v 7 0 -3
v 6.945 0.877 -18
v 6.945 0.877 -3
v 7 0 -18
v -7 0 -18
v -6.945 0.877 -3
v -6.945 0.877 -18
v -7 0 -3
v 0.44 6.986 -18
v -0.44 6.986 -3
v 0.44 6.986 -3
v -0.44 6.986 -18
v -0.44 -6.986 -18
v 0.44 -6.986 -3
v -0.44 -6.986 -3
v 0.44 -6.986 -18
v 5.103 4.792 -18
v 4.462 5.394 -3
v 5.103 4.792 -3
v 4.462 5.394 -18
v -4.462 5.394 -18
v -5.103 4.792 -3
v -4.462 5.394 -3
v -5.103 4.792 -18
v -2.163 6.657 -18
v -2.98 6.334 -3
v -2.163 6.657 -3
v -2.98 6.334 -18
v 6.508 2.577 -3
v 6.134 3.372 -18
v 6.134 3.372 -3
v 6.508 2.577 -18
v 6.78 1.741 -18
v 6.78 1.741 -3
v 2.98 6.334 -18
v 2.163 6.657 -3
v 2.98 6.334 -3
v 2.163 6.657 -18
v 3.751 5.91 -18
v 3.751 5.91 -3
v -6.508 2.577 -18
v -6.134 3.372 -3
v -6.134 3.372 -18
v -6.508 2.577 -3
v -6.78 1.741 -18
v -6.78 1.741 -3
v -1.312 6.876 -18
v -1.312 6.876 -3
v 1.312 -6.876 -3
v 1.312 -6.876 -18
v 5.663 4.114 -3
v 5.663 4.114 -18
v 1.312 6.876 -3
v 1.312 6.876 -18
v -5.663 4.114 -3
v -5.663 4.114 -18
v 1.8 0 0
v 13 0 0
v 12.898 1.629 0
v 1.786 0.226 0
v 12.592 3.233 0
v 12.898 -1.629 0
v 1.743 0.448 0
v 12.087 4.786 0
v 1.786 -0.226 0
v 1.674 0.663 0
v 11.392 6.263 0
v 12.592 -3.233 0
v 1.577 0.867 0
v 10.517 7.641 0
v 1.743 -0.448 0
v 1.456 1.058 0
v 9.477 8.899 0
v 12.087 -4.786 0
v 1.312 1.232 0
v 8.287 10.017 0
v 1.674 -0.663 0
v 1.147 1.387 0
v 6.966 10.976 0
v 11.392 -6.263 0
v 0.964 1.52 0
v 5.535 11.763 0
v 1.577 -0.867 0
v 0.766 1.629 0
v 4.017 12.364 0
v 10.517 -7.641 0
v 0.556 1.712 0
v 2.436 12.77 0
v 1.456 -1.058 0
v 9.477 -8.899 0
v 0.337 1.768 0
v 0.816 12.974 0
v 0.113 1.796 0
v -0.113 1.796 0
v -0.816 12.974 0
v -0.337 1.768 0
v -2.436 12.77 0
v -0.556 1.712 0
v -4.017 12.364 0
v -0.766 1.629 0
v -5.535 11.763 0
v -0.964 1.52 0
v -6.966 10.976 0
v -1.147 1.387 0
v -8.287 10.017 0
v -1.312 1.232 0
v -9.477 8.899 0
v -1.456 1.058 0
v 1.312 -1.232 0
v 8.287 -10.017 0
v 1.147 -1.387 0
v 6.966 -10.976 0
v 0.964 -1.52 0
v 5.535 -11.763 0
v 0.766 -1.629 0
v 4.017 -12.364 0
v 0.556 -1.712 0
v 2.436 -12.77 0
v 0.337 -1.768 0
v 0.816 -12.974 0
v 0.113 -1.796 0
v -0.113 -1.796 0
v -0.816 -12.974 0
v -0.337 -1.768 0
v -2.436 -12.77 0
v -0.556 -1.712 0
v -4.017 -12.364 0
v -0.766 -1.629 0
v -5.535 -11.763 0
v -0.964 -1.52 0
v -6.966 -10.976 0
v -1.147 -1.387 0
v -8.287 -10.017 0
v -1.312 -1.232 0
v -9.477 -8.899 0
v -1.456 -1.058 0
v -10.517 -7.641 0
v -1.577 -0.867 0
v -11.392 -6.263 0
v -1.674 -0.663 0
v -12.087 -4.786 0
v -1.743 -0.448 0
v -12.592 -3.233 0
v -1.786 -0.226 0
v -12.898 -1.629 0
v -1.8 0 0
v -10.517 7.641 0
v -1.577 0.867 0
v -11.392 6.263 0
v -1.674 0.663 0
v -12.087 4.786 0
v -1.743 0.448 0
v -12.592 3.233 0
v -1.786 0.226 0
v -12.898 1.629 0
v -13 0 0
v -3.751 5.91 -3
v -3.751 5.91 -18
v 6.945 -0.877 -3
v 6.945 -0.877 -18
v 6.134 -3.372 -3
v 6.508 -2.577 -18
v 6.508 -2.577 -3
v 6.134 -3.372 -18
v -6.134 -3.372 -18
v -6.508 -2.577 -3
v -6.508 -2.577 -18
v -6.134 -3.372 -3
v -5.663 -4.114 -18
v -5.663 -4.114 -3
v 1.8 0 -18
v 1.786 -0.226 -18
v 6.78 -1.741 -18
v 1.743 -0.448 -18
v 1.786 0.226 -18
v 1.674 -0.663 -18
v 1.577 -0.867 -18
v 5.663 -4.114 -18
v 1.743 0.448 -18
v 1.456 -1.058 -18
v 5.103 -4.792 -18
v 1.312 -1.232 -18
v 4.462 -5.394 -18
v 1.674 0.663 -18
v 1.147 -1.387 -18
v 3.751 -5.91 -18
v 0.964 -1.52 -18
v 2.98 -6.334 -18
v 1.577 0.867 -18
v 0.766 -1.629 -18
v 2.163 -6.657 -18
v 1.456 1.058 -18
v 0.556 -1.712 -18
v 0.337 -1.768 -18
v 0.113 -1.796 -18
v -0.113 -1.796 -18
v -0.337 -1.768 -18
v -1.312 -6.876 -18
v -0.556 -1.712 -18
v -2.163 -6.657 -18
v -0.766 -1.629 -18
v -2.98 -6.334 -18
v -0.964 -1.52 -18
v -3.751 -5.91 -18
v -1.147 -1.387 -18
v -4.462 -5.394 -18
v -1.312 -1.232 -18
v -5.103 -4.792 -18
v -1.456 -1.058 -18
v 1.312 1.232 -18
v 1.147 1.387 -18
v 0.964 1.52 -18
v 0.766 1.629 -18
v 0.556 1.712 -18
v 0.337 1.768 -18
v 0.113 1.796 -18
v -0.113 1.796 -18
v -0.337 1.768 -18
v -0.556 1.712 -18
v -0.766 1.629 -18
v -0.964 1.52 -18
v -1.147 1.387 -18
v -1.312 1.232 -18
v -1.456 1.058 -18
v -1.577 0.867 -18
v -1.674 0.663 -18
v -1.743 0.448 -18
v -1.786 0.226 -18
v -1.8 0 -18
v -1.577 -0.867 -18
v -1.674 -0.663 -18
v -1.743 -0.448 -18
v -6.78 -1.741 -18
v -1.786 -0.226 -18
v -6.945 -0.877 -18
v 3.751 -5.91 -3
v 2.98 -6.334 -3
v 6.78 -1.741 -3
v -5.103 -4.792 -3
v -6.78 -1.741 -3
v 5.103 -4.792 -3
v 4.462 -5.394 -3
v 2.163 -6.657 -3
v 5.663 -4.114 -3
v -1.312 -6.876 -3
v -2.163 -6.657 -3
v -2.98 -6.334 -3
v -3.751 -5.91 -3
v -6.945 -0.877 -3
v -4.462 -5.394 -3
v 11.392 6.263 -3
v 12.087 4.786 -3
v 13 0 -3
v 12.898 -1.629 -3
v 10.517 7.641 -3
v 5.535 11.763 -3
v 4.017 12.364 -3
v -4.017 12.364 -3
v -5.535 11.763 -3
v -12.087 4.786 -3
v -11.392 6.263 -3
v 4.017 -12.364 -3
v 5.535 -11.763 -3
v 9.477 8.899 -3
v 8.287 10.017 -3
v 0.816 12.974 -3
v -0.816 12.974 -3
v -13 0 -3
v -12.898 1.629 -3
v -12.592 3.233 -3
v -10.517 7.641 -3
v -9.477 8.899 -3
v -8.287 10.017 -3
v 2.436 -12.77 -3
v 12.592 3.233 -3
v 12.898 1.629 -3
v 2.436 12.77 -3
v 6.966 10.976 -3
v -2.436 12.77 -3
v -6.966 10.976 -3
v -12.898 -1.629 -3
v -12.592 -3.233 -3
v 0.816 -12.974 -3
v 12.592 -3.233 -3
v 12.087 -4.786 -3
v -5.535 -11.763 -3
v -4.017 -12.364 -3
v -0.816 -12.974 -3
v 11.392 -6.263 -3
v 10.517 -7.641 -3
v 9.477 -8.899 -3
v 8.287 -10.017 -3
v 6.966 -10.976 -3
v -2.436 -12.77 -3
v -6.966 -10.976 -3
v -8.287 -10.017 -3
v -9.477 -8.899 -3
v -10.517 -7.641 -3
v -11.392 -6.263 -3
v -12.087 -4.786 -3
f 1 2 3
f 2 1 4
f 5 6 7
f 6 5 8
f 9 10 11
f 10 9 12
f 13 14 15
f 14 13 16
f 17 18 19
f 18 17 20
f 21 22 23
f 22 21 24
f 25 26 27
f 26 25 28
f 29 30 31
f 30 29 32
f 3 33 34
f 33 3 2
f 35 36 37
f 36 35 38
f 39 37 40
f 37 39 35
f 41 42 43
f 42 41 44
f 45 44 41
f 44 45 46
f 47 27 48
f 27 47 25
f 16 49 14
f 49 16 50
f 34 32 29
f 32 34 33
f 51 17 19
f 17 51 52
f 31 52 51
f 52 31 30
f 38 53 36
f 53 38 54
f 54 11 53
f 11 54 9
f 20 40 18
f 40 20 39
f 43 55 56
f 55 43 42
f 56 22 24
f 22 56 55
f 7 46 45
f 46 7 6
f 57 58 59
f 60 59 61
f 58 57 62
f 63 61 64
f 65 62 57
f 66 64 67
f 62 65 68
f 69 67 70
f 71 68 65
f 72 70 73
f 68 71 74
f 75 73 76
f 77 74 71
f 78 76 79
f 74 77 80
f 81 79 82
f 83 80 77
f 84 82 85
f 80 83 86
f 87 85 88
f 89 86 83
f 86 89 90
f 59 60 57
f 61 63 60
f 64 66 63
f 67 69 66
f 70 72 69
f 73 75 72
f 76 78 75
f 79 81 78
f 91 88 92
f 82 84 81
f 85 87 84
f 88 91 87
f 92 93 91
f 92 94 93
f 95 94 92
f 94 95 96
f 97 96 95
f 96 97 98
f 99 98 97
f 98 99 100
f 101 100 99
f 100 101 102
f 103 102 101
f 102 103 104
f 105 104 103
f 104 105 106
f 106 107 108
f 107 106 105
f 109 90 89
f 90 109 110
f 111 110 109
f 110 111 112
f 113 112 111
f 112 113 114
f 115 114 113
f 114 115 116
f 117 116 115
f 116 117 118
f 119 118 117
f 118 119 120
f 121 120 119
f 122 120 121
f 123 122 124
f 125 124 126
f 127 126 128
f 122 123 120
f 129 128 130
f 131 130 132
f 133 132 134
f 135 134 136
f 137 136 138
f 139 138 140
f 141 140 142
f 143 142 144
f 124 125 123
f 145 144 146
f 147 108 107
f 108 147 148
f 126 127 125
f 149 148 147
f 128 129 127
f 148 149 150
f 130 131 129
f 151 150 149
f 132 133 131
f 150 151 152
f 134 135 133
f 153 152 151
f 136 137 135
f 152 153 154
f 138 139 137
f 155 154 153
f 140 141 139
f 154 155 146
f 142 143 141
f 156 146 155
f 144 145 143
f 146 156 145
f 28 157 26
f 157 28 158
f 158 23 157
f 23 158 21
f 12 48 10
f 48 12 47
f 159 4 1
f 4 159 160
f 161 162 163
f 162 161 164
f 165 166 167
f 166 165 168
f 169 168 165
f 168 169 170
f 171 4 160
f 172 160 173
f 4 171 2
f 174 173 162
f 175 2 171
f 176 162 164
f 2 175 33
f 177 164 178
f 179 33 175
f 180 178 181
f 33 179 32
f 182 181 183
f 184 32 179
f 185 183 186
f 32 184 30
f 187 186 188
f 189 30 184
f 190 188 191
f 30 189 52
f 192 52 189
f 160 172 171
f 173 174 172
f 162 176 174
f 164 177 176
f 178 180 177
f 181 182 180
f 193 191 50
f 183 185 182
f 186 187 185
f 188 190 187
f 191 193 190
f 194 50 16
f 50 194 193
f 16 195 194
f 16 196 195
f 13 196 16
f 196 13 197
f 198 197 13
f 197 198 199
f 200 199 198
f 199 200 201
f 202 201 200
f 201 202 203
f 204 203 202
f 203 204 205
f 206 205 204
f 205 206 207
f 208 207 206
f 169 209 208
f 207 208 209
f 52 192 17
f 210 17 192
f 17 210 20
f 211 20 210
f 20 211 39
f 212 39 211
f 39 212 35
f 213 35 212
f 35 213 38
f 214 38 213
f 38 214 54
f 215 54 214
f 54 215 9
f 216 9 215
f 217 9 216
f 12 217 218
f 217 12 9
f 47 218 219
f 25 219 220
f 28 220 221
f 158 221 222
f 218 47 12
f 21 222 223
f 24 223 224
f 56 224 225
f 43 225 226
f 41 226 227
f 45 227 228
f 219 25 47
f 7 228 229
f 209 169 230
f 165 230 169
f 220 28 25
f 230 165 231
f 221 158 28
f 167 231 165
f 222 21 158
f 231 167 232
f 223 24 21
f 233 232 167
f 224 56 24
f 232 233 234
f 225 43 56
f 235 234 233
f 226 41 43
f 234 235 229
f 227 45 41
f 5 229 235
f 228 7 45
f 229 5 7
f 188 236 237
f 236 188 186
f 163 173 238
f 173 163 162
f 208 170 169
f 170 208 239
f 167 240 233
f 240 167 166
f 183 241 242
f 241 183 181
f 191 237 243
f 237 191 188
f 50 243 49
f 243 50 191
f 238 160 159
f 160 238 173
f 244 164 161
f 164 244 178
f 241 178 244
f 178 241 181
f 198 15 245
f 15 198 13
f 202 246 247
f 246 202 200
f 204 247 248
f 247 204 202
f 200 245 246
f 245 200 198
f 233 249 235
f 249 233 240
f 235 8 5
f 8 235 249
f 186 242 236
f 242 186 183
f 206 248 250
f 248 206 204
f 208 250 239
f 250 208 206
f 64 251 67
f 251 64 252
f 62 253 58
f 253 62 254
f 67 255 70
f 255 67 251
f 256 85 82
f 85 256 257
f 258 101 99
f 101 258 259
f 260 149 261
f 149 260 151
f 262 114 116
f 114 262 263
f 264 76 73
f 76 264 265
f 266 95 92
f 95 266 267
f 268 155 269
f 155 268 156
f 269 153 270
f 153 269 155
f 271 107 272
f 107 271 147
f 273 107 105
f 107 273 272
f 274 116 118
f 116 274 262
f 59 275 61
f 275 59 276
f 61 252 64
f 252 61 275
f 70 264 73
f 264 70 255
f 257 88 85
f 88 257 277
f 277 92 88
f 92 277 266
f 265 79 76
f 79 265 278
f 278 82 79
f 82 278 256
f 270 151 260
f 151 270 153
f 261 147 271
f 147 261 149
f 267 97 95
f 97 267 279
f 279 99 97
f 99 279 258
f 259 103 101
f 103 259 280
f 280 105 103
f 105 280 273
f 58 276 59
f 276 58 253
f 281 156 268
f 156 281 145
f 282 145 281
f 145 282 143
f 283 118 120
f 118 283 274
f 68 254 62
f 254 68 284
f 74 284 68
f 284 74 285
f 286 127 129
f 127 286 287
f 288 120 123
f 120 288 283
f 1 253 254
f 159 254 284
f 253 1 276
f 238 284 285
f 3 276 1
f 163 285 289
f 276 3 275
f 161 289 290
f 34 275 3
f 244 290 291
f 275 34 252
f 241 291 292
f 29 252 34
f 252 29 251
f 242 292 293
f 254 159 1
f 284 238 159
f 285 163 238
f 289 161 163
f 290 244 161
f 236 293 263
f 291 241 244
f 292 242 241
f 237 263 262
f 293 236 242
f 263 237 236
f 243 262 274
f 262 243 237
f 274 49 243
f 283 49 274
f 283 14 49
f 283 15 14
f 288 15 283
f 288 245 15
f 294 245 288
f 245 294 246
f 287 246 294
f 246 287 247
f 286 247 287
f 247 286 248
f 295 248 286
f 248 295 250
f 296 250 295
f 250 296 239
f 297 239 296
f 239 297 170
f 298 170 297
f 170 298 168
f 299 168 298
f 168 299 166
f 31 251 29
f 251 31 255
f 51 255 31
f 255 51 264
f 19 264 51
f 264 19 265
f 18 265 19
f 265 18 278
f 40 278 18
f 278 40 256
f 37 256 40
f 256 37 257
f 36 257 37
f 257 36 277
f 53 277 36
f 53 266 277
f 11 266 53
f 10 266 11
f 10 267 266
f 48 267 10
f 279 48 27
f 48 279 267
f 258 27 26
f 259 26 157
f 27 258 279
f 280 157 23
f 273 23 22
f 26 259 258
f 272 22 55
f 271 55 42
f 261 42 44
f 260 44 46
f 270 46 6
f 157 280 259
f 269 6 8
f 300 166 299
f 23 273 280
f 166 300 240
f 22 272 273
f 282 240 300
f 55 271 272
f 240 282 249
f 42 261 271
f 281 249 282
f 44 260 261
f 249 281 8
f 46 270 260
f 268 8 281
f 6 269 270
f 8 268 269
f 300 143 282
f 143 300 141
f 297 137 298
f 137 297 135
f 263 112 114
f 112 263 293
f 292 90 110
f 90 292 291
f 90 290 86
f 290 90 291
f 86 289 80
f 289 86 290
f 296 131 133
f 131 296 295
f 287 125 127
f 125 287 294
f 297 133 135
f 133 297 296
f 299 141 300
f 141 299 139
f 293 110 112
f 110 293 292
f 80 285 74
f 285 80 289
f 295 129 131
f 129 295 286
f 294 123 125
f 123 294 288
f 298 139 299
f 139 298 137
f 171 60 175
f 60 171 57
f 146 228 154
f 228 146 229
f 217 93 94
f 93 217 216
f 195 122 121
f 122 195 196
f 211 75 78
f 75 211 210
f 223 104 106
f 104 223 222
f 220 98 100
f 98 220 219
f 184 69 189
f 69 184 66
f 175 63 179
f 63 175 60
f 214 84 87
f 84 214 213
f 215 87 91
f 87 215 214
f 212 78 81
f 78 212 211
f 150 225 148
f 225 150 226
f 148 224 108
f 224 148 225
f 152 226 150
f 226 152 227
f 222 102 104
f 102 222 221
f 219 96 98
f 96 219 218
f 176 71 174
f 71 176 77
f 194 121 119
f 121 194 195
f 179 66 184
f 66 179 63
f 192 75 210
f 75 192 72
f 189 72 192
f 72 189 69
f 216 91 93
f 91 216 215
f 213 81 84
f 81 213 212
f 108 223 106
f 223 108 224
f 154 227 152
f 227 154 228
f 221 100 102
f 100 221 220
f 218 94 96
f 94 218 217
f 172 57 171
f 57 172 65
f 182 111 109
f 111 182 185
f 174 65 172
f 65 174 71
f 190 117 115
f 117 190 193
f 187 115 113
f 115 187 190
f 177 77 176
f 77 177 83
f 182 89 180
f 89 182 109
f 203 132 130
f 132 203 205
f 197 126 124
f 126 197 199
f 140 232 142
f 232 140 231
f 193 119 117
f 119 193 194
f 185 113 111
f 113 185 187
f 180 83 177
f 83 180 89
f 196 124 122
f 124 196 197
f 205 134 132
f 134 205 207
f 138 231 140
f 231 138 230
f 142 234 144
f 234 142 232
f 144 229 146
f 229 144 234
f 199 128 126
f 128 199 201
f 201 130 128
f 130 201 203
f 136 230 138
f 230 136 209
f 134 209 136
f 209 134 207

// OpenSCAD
$fn = 50;


difference() {
	union() {
		translate(v = [0, 0, -18.0000000000]) {
			cylinder(h = 18, r = 7.0000000000);
		}
		translate(v = [0, 0, -3.0000000000]) {
			cylinder(h = 3, r = 13.0000000000);
		}
	}
	union() {
		#translate(v = [0, 0, -18]) {
			cylinder(h = 18, r = 1.8000000000);
		}
	}
}
